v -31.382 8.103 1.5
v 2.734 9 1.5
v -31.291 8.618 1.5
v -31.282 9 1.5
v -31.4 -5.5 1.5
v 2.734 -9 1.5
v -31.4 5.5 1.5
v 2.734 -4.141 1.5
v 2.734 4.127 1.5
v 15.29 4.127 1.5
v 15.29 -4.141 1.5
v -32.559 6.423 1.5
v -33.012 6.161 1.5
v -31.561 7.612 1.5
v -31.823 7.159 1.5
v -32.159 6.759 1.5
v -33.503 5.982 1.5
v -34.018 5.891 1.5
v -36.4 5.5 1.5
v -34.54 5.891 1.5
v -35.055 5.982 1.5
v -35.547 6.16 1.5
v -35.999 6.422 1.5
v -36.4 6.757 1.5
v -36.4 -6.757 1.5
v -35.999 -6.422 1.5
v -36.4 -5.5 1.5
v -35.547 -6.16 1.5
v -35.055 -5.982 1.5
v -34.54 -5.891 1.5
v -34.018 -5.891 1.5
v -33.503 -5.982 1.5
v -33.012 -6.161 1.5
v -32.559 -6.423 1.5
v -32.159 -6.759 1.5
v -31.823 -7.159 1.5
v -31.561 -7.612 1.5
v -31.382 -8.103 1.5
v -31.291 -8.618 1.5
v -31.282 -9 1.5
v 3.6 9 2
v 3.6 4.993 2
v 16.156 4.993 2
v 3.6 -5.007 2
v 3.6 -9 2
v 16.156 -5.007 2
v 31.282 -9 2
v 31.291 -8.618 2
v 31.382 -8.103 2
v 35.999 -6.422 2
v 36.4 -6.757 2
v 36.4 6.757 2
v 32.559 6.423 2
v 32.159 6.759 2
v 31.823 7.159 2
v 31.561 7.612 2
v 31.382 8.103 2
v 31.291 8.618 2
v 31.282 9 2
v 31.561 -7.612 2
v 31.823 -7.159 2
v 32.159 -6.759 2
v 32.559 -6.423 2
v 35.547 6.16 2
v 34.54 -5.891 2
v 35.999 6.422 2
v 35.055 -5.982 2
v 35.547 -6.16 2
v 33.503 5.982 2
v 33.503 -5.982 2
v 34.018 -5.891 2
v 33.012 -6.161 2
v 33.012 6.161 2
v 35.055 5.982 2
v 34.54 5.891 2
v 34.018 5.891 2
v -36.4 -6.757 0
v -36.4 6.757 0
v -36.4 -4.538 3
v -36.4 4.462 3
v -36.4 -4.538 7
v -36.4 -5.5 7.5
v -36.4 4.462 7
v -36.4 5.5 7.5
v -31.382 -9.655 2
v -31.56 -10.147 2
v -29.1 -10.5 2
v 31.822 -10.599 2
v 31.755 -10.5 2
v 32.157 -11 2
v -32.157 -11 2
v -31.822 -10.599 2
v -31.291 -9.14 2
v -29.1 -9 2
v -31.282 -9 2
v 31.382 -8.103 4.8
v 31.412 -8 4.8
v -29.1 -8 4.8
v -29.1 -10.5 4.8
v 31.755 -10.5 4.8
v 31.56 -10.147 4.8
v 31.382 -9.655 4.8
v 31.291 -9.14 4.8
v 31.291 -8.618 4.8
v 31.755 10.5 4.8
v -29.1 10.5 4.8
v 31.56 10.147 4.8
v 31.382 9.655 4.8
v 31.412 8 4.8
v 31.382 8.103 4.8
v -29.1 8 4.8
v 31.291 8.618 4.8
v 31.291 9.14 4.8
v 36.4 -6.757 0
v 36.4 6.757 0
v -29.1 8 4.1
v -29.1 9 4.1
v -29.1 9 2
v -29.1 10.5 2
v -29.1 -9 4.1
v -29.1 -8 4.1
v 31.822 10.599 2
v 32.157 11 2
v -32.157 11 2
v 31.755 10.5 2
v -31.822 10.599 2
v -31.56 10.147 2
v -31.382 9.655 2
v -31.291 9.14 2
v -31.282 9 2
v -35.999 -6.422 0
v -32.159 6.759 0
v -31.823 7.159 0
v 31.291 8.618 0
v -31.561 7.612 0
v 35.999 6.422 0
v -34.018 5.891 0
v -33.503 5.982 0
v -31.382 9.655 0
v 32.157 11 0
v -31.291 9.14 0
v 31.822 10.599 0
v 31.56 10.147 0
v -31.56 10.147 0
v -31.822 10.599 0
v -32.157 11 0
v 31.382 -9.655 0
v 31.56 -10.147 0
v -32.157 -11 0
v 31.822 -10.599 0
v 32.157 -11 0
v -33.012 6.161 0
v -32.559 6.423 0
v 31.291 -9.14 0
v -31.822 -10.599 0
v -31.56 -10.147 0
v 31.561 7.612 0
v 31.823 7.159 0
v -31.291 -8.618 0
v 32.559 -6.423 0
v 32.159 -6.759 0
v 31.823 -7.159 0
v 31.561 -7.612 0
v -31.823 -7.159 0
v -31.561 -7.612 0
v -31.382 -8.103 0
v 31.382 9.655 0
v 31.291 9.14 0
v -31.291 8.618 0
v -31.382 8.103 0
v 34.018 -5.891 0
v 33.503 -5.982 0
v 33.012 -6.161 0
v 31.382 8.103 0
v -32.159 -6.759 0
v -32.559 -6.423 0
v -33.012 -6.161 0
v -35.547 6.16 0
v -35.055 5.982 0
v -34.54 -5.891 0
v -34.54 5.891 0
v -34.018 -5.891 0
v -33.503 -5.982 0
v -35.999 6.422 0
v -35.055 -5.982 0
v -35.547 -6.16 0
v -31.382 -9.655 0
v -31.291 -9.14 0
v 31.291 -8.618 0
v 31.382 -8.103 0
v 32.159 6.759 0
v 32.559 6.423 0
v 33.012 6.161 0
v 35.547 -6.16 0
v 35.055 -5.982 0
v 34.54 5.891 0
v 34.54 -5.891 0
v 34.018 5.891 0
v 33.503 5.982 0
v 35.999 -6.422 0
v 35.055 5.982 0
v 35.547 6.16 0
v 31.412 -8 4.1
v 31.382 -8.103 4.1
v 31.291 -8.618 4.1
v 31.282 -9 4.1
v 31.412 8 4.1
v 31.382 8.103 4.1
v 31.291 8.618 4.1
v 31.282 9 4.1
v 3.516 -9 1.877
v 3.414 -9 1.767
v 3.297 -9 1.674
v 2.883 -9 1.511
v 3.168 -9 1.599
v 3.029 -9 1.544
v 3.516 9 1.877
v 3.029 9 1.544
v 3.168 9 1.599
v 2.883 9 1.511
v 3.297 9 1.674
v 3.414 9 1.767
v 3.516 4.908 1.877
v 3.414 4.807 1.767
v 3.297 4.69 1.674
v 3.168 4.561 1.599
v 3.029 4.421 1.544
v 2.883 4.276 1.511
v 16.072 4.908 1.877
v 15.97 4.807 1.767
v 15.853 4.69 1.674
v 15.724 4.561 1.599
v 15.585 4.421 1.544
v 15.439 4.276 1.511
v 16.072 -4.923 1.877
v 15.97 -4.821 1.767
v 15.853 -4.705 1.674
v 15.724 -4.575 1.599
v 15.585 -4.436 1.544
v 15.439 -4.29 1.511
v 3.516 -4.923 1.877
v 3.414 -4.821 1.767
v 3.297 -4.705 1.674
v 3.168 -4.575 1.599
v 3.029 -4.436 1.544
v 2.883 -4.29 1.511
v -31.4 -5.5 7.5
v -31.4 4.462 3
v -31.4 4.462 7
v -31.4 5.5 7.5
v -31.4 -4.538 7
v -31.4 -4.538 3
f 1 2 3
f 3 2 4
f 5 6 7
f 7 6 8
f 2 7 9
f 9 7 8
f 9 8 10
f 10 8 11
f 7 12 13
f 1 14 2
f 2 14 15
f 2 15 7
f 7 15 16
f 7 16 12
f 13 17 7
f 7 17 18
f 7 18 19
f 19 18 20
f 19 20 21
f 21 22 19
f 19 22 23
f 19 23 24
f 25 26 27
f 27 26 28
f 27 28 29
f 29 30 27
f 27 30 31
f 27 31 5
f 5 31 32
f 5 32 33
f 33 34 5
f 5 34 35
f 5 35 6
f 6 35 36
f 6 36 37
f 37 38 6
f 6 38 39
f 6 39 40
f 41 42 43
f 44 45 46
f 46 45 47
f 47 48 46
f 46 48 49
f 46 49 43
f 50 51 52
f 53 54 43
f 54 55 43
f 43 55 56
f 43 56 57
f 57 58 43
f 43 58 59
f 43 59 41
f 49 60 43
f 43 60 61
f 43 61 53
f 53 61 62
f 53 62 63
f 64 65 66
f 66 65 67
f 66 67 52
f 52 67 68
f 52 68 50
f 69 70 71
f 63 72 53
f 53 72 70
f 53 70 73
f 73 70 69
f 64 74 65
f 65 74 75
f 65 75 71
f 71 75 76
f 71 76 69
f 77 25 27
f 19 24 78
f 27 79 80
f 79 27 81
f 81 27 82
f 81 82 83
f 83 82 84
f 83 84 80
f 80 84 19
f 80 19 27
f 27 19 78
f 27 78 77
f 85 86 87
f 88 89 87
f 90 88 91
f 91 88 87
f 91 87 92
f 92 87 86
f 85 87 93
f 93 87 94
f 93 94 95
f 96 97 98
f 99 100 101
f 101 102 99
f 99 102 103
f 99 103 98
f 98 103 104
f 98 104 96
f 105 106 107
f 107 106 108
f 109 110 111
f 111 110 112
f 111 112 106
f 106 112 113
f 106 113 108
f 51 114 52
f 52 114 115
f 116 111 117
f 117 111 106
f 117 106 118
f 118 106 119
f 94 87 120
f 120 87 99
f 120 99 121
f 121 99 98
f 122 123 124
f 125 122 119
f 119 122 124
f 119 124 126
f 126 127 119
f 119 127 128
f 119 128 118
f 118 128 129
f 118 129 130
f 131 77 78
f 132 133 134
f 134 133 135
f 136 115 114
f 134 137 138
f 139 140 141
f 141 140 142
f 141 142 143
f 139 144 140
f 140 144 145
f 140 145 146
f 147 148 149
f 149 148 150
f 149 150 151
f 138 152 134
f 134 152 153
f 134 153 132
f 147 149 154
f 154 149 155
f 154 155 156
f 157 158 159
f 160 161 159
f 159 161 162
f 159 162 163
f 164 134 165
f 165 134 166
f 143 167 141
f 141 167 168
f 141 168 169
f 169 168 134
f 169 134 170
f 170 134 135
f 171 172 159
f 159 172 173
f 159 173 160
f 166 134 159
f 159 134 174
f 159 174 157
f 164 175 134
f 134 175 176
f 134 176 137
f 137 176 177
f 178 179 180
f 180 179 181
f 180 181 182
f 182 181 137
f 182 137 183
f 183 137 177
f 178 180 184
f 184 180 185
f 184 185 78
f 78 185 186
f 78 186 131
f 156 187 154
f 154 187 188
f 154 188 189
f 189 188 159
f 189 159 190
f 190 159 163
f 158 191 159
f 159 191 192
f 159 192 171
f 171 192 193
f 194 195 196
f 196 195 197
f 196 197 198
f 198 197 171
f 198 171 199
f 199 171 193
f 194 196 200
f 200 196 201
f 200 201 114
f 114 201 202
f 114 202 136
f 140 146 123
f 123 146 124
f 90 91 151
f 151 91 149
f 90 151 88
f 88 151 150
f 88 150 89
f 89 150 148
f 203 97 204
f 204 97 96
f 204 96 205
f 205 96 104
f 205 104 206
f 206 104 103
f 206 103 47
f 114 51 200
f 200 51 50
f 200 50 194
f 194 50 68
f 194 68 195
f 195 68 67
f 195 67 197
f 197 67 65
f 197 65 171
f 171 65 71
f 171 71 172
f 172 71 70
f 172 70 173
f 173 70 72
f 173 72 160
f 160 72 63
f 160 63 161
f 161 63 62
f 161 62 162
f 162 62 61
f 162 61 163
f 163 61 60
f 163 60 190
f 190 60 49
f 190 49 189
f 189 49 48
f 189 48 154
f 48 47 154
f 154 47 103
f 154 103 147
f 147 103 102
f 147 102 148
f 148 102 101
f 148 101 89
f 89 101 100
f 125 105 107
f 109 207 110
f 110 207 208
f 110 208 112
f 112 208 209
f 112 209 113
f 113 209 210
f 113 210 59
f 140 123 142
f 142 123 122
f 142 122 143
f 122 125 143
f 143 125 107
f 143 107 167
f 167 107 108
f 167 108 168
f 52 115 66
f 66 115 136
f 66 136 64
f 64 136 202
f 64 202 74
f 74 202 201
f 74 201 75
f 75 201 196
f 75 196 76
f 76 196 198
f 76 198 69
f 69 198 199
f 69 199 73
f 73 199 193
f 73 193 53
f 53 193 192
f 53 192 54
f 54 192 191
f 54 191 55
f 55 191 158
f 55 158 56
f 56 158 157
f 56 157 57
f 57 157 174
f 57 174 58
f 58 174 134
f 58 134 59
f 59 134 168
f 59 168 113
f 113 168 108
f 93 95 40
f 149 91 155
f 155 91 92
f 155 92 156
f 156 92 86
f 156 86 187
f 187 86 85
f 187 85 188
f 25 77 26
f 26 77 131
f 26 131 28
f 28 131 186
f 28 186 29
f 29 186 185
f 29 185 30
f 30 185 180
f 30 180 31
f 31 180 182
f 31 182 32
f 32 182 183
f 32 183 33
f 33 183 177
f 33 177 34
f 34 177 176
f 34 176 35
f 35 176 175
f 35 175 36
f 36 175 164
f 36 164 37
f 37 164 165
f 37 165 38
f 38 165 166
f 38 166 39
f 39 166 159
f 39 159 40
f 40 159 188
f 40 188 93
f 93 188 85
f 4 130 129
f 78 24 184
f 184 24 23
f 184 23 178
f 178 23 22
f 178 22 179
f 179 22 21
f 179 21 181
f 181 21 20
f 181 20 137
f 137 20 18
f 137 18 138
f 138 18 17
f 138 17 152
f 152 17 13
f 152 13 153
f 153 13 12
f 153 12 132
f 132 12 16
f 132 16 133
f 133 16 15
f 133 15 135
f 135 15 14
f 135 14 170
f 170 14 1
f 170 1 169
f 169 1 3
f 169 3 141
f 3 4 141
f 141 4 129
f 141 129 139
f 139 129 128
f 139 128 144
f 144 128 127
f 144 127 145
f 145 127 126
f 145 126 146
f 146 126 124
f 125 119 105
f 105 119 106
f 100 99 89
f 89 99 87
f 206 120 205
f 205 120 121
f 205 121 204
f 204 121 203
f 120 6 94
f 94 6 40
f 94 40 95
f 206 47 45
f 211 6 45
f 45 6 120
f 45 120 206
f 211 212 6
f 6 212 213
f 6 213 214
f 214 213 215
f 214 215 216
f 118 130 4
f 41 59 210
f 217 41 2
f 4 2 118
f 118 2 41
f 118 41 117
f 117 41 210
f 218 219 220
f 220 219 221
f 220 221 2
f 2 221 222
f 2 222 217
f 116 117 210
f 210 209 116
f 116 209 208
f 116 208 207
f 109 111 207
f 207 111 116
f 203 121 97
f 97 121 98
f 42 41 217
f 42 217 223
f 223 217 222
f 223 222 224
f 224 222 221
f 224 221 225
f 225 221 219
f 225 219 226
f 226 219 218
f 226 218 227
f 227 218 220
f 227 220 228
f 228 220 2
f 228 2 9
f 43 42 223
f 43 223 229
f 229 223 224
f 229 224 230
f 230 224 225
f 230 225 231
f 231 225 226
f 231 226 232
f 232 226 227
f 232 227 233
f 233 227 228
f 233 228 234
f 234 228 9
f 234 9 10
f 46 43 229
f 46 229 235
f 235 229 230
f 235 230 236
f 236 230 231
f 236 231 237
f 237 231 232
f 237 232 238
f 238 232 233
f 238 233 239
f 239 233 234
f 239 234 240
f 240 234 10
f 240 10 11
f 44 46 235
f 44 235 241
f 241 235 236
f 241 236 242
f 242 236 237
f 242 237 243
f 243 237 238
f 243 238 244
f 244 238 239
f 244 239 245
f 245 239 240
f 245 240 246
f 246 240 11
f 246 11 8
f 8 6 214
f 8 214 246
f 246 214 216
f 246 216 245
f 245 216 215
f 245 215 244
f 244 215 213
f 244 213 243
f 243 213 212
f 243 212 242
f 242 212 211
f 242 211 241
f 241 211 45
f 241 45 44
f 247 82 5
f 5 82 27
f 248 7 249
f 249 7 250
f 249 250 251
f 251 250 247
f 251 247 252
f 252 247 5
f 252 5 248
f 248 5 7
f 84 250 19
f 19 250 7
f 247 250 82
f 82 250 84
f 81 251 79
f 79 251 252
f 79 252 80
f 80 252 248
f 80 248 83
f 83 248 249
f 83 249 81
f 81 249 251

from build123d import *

# Parameters (mm, degrees)
SKIZZE1_W                       = 22
SKIZZE1_H                       = 72.8
AUFSATZ_LINEAR_AUSTRAGEN1_DEPTH = 2
SKIZZE2_R                       = 3
SCHNITT_LINEAR_AUSTRAGEN1_DEPTH = 2
SKIZZE3_W                       = 65.5
SKIZZE3_H                       = 21
AUFSATZ_LINEAR_AUSTRAGEN2_DEPTH = 2.8
SCHNITT_LINEAR_AUSTRAGEN2_DEPTH = 67.590464783
SKIZZE5_R                       = 3
SCHNITT_LINEAR_AUSTRAGEN4_DEPTH = 39.128729326
SKIZZE6_W                       = 18
SKIZZE6_H                       = 1
SCHNITT_LINEAR_AUSTRAGEN5_DEPTH = 40
SKIZZE8_W                       = 15
SKIZZE8_H                       = 10
SCHNITT_LINEAR_AUSTRAGEN6_DEPTH = 0.5
VERRUNDUNG3_R                   = 1
SKIZZE9_W                       = 5
SKIZZE9_H                       = 11
AUFSATZ_LINEAR_AUSTRAGEN3_DEPTH = 6
SKIZZE10_W                      = 9
SKIZZE10_H                      = 4
SCHNITT_LINEAR_AUSTRAGEN7_DEPTH = 75.007364498


with BuildPart() as part:
    # Skizze1 → Aufsatz-Linear austragen1 (new body)
    with BuildSketch(Plane(origin=(0, 0, 0), x_dir=(0, 1, 0), z_dir=(0, 0, 1))):
        Rectangle(SKIZZE1_W, SKIZZE1_H)
    extrude(amount=AUFSATZ_LINEAR_AUSTRAGEN1_DEPTH)

    # Skizze2 → Schnitt-Linear austragen1 (cut)
    with BuildSketch(Plane.XY.offset(2)):
        with Locations((-34.28, 8.88)):
            Circle(SKIZZE2_R)
        with Locations((-34.28, -8.88)):
            Circle(SKIZZE2_R)
        with Locations((34.28, -8.88)):
            Circle(SKIZZE2_R)
        with Locations((34.28, 8.88)):
            Circle(SKIZZE2_R)
    extrude(amount=-SCHNITT_LINEAR_AUSTRAGEN1_DEPTH, mode=Mode.SUBTRACT)

    # Skizze3 → Aufsatz-Linear austragen2 (add)
    with BuildSketch(Plane.XY.offset(2)):
        with Locations((3.65, 0)):
            Rectangle(SKIZZE3_W, SKIZZE3_H)
    extrude(amount=AUFSATZ_LINEAR_AUSTRAGEN2_DEPTH)

    # Skizze4 → Schnitt-Linear austragen2 (cut, through all)
    with BuildSketch(Plane(origin=(-29.1, 0, 0), x_dir=(0, -1, 0), z_dir=(-1, 0, 0))):
        Polygon((-8, 4.8), (8, 4.8), (8, 4.1), (9, 4.1), (9, 2), (-9, 2), (-9, 4.1), (-8, 4.1), align=None)
    extrude(amount=-SCHNITT_LINEAR_AUSTRAGEN2_DEPTH, mode=Mode.SUBTRACT)

    # Skizze5 → Schnitt-Linear austragen4 (cut, through all)
    with BuildSketch(Plane(origin=(0, 0, 2), x_dir=(1, 0, 0), z_dir=(0, 0, -1))):
        with Locations((34.28, -8.88)):
            Circle(SKIZZE5_R)
        with Locations((34.28, 8.88)):
            Circle(SKIZZE5_R)
    extrude(amount=-SCHNITT_LINEAR_AUSTRAGEN4_DEPTH, mode=Mode.SUBTRACT)

    # Skizze6 → Schnitt-Linear austragen5 (cut)
    with BuildSketch(Plane(origin=(-36.4, 0, 0), x_dir=(0, -1, 0), z_dir=(-1, 0, 0))):
        with Locations((0, 2)):
            Rectangle(SKIZZE6_W, SKIZZE6_H)
    extrude(amount=-SCHNITT_LINEAR_AUSTRAGEN5_DEPTH, mode=Mode.SUBTRACT)

    # Skizze8 → Schnitt-Linear austragen6 (cut)
    with BuildSketch(Plane.XY.offset(2)):
        with Locations((8.655984658, -0.007335612)):
            Rectangle(SKIZZE8_W, SKIZZE8_H)
    extrude(amount=-SCHNITT_LINEAR_AUSTRAGEN6_DEPTH, mode=Mode.SUBTRACT)

    # Verrundung3
    # the kernel refuses this fillet: 1 mm, written as the material it adds along each edge
    with BuildSketch(Plane(origin=(3.6, -9, 1.5), x_dir=(0, 0, 1), z_dir=(0, 1, 0))) as verrundung3_piece_1:
        with BuildLine():
            CenterArc((1, -0.866025404), VERRUNDUNG3_R, 120, 60)
            Line((0, -0.866025404), (-0.02, -0.866025404))
            Line((-0.02, -0.866025404), (-0.02, 0))
            Line((-0.02, 0), (0, 0.02))
            ThreePointArc((0, 0.02), (0.25, 0.02), (0.49, 0.017320508))
            Line((0.49, 0.017320508), (0.5, 0))
        make_face()
    extrude(amount=3.992664388)
    with BuildSketch(Plane(origin=(3.6, -5.007335612, 1.5), x_dir=(0, 0, 1), z_dir=(1, 0, 0)), Plane(origin=(16.155984658, 4.992664388, 1.5), x_dir=(0, 0, 1), z_dir=(-1, 0, 0))) as verrundung3_piece_2:
        with BuildLine():
            CenterArc((1, -0.866025404), VERRUNDUNG3_R, 120, 60)
            Line((0, -0.866025404), (-0.02, -0.866025404))
            Line((-0.02, -0.866025404), (-0.02, 0))
            Line((-0.02, 0), (0, 0.02))
            ThreePointArc((0, 0.02), (0.25, 0.02), (0.49, 0.017320508))
            Line((0.49, 0.017320508), (0.5, 0))
        make_face()
    extrude(amount=12.555984658)
    with BuildSketch(Plane(origin=(3.6, 4.992664388, 1.5), x_dir=(0, 0, 1), z_dir=(0, 1, 0))) as verrundung3_piece_3:
        with BuildLine():
            CenterArc((1, -0.866025404), VERRUNDUNG3_R, 120, 60)
            Line((0, -0.866025404), (-0.02, -0.866025404))
            Line((-0.02, -0.866025404), (-0.02, 0))
            Line((-0.02, 0), (0, 0.02))
            ThreePointArc((0, 0.02), (0.25, 0.02), (0.49, 0.017320508))
            Line((0.49, 0.017320508), (0.5, 0))
        make_face()
    extrude(amount=4.007335612)
    with BuildSketch(Plane(origin=(16.155984658, -5.007335612, 1.5), x_dir=(0, 0, 1), z_dir=(0, 1, 0))) as verrundung3_piece_4:
        with BuildLine():
            CenterArc((1, -0.866025404), VERRUNDUNG3_R, 120, 60)
            Line((0, -0.866025404), (-0.02, -0.866025404))
            Line((-0.02, -0.866025404), (-0.02, 0))
            Line((-0.02, 0), (0, 0.02))
            ThreePointArc((0, 0.02), (0.25, 0.02), (0.49, 0.017320508))
            Line((0.49, 0.017320508), (0.5, 0))
        make_face()
    extrude(amount=10)
    with BuildSketch(Plane(origin=(3.6, -9, 1.5), x_dir=(0, 0, 1), z_dir=(0, 1, 0))) as verrundung3_piece_5a_section:
        with BuildLine():
            CenterArc((1, -0.866025404), VERRUNDUNG3_R, 120, 60)
            Line((0, -0.866025404), (-0.02, -0.866025404))
            Line((-0.02, -0.866025404), (-0.02, 0))
            Line((-0.02, 0), (0, 0.02))
            ThreePointArc((0, 0.02), (0.25, 0.02), (0.49, 0.017320508))
            Line((0.49, 0.017320508), (0.5, 0))
        make_face()
    verrundung3_piece_5a = extrude(amount=6.157727897, mode=Mode.PRIVATE)
    verrundung3_piece_5a = split(verrundung3_piece_5a, bisect_by=Plane(origin=(3.383689554, -5.007335612, 1.629516711), z_dir=(0, 1, 0)), keep=Keep.TOP, mode=Mode.PRIVATE)
    with BuildSketch(Plane(origin=(1.434936491, -5.007335612, 1.5), x_dir=(0, 0, 1), z_dir=(1, 0, 0))) as verrundung3_piece_5b_section:
        with BuildLine():
            CenterArc((1, -0.866025404), VERRUNDUNG3_R, 120, 60)
            Line((0, -0.866025404), (-0.02, -0.866025404))
            Line((-0.02, -0.866025404), (-0.02, 0))
            Line((-0.02, 0), (0, 0.02))
            ThreePointArc((0, 0.02), (0.25, 0.02), (0.49, 0.017320508))
            Line((0.49, 0.017320508), (0.5, 0))
        make_face()
    verrundung3_piece_5b = extrude(amount=14.721048168, mode=Mode.PRIVATE)
    verrundung3_piece_5b = split(verrundung3_piece_5b, bisect_by=Plane(origin=(3.6, -4.791025166, 1.629516711), z_dir=(-1, 0, 0)), keep=Keep.TOP, mode=Mode.PRIVATE)
    verrundung3_piece_5 = verrundung3_piece_5a & verrundung3_piece_5b
    add(verrundung3_piece_5)
    with BuildSketch(Plane(origin=(3.6, -5.007335612, 1.5), x_dir=(0, 0, 1), z_dir=(1, 0, 0))) as verrundung3_piece_6a_section:
        with BuildLine():
            CenterArc((1, -0.866025404), VERRUNDUNG3_R, 120, 60)
            Line((0, -0.866025404), (-0.02, -0.866025404))
            Line((-0.02, -0.866025404), (-0.02, 0))
            Line((-0.02, 0), (0, 0.02))
            ThreePointArc((0, 0.02), (0.25, 0.02), (0.49, 0.017320508))
            Line((0.49, 0.017320508), (0.5, 0))
        make_face()
    verrundung3_piece_6a = extrude(amount=14.721048168, mode=Mode.PRIVATE)
    verrundung3_piece_6a = split(verrundung3_piece_6a, bisect_by=Plane(origin=(16.155984658, -4.791025166, 1.629516711), z_dir=(1, 0, 0)), keep=Keep.TOP, mode=Mode.PRIVATE)
    with BuildSketch(Plane(origin=(16.155984658, -7.172399122, 1.5), x_dir=(0, 0, 1), z_dir=(0, 1, 0))) as verrundung3_piece_6b_section:
        with BuildLine():
            CenterArc((1, -0.866025404), VERRUNDUNG3_R, 120, 60)
            Line((0, -0.866025404), (-0.02, -0.866025404))
            Line((-0.02, -0.866025404), (-0.02, 0))
            Line((-0.02, 0), (0, 0.02))
            ThreePointArc((0, 0.02), (0.25, 0.02), (0.49, 0.017320508))
            Line((0.49, 0.017320508), (0.5, 0))
        make_face()
    verrundung3_piece_6b = extrude(amount=12.165063509, mode=Mode.PRIVATE)
    verrundung3_piece_6b = split(verrundung3_piece_6b, bisect_by=Plane(origin=(15.939674213, -5.007335612, 1.629516711), z_dir=(0, -1, 0)), keep=Keep.TOP, mode=Mode.PRIVATE)
    verrundung3_piece_6 = verrundung3_piece_6a & verrundung3_piece_6b
    add(verrundung3_piece_6)
    with BuildSketch(Plane(origin=(16.155984658, 4.992664388, 1.5), x_dir=(0, 0, 1), z_dir=(-1, 0, 0))) as verrundung3_piece_7a_section:
        with BuildLine():
            CenterArc((1, -0.866025404), VERRUNDUNG3_R, 120, 60)
            Line((0, -0.866025404), (-0.02, -0.866025404))
            Line((-0.02, -0.866025404), (-0.02, 0))
            Line((-0.02, 0), (0, 0.02))
            ThreePointArc((0, 0.02), (0.25, 0.02), (0.49, 0.017320508))
            Line((0.49, 0.017320508), (0.5, 0))
        make_face()
    verrundung3_piece_7a = extrude(amount=14.721048168, mode=Mode.PRIVATE)
    verrundung3_piece_7a = split(verrundung3_piece_7a, bisect_by=Plane(origin=(3.6, 4.776353942, 1.629516711), z_dir=(-1, 0, 0)), keep=Keep.TOP, mode=Mode.PRIVATE)
    with BuildSketch(Plane(origin=(3.6, 2.827600878, 1.5), x_dir=(0, 0, 1), z_dir=(0, 1, 0))) as verrundung3_piece_7b_section:
        with BuildLine():
            CenterArc((1, -0.866025404), VERRUNDUNG3_R, 120, 60)
            Line((0, -0.866025404), (-0.02, -0.866025404))
            Line((-0.02, -0.866025404), (-0.02, 0))
            Line((-0.02, 0), (0, 0.02))
            ThreePointArc((0, 0.02), (0.25, 0.02), (0.49, 0.017320508))
            Line((0.49, 0.017320508), (0.5, 0))
        make_face()
    verrundung3_piece_7b = extrude(amount=6.172399122, mode=Mode.PRIVATE)
    verrundung3_piece_7b = split(verrundung3_piece_7b, bisect_by=Plane(origin=(3.383689554, 4.992664388, 1.629516711), z_dir=(0, -1, 0)), keep=Keep.TOP, mode=Mode.PRIVATE)
    verrundung3_piece_7 = verrundung3_piece_7a & verrundung3_piece_7b
    add(verrundung3_piece_7)
    with BuildSketch(Plane(origin=(16.155984658, -5.007335612, 1.5), x_dir=(0, 0, 1), z_dir=(0, 1, 0))) as verrundung3_piece_8a_section:
        with BuildLine():
            CenterArc((1, -0.866025404), VERRUNDUNG3_R, 120, 60)
            Line((0, -0.866025404), (-0.02, -0.866025404))
            Line((-0.02, -0.866025404), (-0.02, 0))
            Line((-0.02, 0), (0, 0.02))
            ThreePointArc((0, 0.02), (0.25, 0.02), (0.49, 0.017320508))
            Line((0.49, 0.017320508), (0.5, 0))
        make_face()
    verrundung3_piece_8a = extrude(amount=12.165063509, mode=Mode.PRIVATE)
    verrundung3_piece_8a = split(verrundung3_piece_8a, bisect_by=Plane(origin=(15.939674213, 4.992664388, 1.629516711), z_dir=(0, 1, 0)), keep=Keep.TOP, mode=Mode.PRIVATE)
    with BuildSketch(Plane(origin=(18.321048168, 4.992664388, 1.5), x_dir=(0, 0, 1), z_dir=(-1, 0, 0))) as verrundung3_piece_8b_section:
        with BuildLine():
            CenterArc((1, -0.866025404), VERRUNDUNG3_R, 120, 60)
            Line((0, -0.866025404), (-0.02, -0.866025404))
            Line((-0.02, -0.866025404), (-0.02, 0))
            Line((-0.02, 0), (0, 0.02))
            ThreePointArc((0, 0.02), (0.25, 0.02), (0.49, 0.017320508))
            Line((0.49, 0.017320508), (0.5, 0))
        make_face()
    verrundung3_piece_8b = extrude(amount=14.721048168, mode=Mode.PRIVATE)
    verrundung3_piece_8b = split(verrundung3_piece_8b, bisect_by=Plane(origin=(16.155984658, 4.776353942, 1.629516711), z_dir=(1, 0, 0)), keep=Keep.TOP, mode=Mode.PRIVATE)
    verrundung3_piece_8 = verrundung3_piece_8a & verrundung3_piece_8b
    add(verrundung3_piece_8)

    # Skizze9 → Aufsatz-Linear austragen3 (add)
    with BuildSketch(Plane.XY.offset(1.5)):
        with Locations((-33.9, 0)):
            Rectangle(SKIZZE9_W, SKIZZE9_H)
    extrude(amount=AUFSATZ_LINEAR_AUSTRAGEN3_DEPTH)

    # Skizze10 → Schnitt-Linear austragen7 (cut, through all)
    with BuildSketch(Plane(origin=(-36.4, 0, 0), x_dir=(0, -1, 0), z_dir=(-1, 0, 0))):
        with Locations((0.038201858, 5)):
            Rectangle(SKIZZE10_W, SKIZZE10_H)
    extrude(amount=-SCHNITT_LINEAR_AUSTRAGEN7_DEPTH, mode=Mode.SUBTRACT)


solid = part.part
